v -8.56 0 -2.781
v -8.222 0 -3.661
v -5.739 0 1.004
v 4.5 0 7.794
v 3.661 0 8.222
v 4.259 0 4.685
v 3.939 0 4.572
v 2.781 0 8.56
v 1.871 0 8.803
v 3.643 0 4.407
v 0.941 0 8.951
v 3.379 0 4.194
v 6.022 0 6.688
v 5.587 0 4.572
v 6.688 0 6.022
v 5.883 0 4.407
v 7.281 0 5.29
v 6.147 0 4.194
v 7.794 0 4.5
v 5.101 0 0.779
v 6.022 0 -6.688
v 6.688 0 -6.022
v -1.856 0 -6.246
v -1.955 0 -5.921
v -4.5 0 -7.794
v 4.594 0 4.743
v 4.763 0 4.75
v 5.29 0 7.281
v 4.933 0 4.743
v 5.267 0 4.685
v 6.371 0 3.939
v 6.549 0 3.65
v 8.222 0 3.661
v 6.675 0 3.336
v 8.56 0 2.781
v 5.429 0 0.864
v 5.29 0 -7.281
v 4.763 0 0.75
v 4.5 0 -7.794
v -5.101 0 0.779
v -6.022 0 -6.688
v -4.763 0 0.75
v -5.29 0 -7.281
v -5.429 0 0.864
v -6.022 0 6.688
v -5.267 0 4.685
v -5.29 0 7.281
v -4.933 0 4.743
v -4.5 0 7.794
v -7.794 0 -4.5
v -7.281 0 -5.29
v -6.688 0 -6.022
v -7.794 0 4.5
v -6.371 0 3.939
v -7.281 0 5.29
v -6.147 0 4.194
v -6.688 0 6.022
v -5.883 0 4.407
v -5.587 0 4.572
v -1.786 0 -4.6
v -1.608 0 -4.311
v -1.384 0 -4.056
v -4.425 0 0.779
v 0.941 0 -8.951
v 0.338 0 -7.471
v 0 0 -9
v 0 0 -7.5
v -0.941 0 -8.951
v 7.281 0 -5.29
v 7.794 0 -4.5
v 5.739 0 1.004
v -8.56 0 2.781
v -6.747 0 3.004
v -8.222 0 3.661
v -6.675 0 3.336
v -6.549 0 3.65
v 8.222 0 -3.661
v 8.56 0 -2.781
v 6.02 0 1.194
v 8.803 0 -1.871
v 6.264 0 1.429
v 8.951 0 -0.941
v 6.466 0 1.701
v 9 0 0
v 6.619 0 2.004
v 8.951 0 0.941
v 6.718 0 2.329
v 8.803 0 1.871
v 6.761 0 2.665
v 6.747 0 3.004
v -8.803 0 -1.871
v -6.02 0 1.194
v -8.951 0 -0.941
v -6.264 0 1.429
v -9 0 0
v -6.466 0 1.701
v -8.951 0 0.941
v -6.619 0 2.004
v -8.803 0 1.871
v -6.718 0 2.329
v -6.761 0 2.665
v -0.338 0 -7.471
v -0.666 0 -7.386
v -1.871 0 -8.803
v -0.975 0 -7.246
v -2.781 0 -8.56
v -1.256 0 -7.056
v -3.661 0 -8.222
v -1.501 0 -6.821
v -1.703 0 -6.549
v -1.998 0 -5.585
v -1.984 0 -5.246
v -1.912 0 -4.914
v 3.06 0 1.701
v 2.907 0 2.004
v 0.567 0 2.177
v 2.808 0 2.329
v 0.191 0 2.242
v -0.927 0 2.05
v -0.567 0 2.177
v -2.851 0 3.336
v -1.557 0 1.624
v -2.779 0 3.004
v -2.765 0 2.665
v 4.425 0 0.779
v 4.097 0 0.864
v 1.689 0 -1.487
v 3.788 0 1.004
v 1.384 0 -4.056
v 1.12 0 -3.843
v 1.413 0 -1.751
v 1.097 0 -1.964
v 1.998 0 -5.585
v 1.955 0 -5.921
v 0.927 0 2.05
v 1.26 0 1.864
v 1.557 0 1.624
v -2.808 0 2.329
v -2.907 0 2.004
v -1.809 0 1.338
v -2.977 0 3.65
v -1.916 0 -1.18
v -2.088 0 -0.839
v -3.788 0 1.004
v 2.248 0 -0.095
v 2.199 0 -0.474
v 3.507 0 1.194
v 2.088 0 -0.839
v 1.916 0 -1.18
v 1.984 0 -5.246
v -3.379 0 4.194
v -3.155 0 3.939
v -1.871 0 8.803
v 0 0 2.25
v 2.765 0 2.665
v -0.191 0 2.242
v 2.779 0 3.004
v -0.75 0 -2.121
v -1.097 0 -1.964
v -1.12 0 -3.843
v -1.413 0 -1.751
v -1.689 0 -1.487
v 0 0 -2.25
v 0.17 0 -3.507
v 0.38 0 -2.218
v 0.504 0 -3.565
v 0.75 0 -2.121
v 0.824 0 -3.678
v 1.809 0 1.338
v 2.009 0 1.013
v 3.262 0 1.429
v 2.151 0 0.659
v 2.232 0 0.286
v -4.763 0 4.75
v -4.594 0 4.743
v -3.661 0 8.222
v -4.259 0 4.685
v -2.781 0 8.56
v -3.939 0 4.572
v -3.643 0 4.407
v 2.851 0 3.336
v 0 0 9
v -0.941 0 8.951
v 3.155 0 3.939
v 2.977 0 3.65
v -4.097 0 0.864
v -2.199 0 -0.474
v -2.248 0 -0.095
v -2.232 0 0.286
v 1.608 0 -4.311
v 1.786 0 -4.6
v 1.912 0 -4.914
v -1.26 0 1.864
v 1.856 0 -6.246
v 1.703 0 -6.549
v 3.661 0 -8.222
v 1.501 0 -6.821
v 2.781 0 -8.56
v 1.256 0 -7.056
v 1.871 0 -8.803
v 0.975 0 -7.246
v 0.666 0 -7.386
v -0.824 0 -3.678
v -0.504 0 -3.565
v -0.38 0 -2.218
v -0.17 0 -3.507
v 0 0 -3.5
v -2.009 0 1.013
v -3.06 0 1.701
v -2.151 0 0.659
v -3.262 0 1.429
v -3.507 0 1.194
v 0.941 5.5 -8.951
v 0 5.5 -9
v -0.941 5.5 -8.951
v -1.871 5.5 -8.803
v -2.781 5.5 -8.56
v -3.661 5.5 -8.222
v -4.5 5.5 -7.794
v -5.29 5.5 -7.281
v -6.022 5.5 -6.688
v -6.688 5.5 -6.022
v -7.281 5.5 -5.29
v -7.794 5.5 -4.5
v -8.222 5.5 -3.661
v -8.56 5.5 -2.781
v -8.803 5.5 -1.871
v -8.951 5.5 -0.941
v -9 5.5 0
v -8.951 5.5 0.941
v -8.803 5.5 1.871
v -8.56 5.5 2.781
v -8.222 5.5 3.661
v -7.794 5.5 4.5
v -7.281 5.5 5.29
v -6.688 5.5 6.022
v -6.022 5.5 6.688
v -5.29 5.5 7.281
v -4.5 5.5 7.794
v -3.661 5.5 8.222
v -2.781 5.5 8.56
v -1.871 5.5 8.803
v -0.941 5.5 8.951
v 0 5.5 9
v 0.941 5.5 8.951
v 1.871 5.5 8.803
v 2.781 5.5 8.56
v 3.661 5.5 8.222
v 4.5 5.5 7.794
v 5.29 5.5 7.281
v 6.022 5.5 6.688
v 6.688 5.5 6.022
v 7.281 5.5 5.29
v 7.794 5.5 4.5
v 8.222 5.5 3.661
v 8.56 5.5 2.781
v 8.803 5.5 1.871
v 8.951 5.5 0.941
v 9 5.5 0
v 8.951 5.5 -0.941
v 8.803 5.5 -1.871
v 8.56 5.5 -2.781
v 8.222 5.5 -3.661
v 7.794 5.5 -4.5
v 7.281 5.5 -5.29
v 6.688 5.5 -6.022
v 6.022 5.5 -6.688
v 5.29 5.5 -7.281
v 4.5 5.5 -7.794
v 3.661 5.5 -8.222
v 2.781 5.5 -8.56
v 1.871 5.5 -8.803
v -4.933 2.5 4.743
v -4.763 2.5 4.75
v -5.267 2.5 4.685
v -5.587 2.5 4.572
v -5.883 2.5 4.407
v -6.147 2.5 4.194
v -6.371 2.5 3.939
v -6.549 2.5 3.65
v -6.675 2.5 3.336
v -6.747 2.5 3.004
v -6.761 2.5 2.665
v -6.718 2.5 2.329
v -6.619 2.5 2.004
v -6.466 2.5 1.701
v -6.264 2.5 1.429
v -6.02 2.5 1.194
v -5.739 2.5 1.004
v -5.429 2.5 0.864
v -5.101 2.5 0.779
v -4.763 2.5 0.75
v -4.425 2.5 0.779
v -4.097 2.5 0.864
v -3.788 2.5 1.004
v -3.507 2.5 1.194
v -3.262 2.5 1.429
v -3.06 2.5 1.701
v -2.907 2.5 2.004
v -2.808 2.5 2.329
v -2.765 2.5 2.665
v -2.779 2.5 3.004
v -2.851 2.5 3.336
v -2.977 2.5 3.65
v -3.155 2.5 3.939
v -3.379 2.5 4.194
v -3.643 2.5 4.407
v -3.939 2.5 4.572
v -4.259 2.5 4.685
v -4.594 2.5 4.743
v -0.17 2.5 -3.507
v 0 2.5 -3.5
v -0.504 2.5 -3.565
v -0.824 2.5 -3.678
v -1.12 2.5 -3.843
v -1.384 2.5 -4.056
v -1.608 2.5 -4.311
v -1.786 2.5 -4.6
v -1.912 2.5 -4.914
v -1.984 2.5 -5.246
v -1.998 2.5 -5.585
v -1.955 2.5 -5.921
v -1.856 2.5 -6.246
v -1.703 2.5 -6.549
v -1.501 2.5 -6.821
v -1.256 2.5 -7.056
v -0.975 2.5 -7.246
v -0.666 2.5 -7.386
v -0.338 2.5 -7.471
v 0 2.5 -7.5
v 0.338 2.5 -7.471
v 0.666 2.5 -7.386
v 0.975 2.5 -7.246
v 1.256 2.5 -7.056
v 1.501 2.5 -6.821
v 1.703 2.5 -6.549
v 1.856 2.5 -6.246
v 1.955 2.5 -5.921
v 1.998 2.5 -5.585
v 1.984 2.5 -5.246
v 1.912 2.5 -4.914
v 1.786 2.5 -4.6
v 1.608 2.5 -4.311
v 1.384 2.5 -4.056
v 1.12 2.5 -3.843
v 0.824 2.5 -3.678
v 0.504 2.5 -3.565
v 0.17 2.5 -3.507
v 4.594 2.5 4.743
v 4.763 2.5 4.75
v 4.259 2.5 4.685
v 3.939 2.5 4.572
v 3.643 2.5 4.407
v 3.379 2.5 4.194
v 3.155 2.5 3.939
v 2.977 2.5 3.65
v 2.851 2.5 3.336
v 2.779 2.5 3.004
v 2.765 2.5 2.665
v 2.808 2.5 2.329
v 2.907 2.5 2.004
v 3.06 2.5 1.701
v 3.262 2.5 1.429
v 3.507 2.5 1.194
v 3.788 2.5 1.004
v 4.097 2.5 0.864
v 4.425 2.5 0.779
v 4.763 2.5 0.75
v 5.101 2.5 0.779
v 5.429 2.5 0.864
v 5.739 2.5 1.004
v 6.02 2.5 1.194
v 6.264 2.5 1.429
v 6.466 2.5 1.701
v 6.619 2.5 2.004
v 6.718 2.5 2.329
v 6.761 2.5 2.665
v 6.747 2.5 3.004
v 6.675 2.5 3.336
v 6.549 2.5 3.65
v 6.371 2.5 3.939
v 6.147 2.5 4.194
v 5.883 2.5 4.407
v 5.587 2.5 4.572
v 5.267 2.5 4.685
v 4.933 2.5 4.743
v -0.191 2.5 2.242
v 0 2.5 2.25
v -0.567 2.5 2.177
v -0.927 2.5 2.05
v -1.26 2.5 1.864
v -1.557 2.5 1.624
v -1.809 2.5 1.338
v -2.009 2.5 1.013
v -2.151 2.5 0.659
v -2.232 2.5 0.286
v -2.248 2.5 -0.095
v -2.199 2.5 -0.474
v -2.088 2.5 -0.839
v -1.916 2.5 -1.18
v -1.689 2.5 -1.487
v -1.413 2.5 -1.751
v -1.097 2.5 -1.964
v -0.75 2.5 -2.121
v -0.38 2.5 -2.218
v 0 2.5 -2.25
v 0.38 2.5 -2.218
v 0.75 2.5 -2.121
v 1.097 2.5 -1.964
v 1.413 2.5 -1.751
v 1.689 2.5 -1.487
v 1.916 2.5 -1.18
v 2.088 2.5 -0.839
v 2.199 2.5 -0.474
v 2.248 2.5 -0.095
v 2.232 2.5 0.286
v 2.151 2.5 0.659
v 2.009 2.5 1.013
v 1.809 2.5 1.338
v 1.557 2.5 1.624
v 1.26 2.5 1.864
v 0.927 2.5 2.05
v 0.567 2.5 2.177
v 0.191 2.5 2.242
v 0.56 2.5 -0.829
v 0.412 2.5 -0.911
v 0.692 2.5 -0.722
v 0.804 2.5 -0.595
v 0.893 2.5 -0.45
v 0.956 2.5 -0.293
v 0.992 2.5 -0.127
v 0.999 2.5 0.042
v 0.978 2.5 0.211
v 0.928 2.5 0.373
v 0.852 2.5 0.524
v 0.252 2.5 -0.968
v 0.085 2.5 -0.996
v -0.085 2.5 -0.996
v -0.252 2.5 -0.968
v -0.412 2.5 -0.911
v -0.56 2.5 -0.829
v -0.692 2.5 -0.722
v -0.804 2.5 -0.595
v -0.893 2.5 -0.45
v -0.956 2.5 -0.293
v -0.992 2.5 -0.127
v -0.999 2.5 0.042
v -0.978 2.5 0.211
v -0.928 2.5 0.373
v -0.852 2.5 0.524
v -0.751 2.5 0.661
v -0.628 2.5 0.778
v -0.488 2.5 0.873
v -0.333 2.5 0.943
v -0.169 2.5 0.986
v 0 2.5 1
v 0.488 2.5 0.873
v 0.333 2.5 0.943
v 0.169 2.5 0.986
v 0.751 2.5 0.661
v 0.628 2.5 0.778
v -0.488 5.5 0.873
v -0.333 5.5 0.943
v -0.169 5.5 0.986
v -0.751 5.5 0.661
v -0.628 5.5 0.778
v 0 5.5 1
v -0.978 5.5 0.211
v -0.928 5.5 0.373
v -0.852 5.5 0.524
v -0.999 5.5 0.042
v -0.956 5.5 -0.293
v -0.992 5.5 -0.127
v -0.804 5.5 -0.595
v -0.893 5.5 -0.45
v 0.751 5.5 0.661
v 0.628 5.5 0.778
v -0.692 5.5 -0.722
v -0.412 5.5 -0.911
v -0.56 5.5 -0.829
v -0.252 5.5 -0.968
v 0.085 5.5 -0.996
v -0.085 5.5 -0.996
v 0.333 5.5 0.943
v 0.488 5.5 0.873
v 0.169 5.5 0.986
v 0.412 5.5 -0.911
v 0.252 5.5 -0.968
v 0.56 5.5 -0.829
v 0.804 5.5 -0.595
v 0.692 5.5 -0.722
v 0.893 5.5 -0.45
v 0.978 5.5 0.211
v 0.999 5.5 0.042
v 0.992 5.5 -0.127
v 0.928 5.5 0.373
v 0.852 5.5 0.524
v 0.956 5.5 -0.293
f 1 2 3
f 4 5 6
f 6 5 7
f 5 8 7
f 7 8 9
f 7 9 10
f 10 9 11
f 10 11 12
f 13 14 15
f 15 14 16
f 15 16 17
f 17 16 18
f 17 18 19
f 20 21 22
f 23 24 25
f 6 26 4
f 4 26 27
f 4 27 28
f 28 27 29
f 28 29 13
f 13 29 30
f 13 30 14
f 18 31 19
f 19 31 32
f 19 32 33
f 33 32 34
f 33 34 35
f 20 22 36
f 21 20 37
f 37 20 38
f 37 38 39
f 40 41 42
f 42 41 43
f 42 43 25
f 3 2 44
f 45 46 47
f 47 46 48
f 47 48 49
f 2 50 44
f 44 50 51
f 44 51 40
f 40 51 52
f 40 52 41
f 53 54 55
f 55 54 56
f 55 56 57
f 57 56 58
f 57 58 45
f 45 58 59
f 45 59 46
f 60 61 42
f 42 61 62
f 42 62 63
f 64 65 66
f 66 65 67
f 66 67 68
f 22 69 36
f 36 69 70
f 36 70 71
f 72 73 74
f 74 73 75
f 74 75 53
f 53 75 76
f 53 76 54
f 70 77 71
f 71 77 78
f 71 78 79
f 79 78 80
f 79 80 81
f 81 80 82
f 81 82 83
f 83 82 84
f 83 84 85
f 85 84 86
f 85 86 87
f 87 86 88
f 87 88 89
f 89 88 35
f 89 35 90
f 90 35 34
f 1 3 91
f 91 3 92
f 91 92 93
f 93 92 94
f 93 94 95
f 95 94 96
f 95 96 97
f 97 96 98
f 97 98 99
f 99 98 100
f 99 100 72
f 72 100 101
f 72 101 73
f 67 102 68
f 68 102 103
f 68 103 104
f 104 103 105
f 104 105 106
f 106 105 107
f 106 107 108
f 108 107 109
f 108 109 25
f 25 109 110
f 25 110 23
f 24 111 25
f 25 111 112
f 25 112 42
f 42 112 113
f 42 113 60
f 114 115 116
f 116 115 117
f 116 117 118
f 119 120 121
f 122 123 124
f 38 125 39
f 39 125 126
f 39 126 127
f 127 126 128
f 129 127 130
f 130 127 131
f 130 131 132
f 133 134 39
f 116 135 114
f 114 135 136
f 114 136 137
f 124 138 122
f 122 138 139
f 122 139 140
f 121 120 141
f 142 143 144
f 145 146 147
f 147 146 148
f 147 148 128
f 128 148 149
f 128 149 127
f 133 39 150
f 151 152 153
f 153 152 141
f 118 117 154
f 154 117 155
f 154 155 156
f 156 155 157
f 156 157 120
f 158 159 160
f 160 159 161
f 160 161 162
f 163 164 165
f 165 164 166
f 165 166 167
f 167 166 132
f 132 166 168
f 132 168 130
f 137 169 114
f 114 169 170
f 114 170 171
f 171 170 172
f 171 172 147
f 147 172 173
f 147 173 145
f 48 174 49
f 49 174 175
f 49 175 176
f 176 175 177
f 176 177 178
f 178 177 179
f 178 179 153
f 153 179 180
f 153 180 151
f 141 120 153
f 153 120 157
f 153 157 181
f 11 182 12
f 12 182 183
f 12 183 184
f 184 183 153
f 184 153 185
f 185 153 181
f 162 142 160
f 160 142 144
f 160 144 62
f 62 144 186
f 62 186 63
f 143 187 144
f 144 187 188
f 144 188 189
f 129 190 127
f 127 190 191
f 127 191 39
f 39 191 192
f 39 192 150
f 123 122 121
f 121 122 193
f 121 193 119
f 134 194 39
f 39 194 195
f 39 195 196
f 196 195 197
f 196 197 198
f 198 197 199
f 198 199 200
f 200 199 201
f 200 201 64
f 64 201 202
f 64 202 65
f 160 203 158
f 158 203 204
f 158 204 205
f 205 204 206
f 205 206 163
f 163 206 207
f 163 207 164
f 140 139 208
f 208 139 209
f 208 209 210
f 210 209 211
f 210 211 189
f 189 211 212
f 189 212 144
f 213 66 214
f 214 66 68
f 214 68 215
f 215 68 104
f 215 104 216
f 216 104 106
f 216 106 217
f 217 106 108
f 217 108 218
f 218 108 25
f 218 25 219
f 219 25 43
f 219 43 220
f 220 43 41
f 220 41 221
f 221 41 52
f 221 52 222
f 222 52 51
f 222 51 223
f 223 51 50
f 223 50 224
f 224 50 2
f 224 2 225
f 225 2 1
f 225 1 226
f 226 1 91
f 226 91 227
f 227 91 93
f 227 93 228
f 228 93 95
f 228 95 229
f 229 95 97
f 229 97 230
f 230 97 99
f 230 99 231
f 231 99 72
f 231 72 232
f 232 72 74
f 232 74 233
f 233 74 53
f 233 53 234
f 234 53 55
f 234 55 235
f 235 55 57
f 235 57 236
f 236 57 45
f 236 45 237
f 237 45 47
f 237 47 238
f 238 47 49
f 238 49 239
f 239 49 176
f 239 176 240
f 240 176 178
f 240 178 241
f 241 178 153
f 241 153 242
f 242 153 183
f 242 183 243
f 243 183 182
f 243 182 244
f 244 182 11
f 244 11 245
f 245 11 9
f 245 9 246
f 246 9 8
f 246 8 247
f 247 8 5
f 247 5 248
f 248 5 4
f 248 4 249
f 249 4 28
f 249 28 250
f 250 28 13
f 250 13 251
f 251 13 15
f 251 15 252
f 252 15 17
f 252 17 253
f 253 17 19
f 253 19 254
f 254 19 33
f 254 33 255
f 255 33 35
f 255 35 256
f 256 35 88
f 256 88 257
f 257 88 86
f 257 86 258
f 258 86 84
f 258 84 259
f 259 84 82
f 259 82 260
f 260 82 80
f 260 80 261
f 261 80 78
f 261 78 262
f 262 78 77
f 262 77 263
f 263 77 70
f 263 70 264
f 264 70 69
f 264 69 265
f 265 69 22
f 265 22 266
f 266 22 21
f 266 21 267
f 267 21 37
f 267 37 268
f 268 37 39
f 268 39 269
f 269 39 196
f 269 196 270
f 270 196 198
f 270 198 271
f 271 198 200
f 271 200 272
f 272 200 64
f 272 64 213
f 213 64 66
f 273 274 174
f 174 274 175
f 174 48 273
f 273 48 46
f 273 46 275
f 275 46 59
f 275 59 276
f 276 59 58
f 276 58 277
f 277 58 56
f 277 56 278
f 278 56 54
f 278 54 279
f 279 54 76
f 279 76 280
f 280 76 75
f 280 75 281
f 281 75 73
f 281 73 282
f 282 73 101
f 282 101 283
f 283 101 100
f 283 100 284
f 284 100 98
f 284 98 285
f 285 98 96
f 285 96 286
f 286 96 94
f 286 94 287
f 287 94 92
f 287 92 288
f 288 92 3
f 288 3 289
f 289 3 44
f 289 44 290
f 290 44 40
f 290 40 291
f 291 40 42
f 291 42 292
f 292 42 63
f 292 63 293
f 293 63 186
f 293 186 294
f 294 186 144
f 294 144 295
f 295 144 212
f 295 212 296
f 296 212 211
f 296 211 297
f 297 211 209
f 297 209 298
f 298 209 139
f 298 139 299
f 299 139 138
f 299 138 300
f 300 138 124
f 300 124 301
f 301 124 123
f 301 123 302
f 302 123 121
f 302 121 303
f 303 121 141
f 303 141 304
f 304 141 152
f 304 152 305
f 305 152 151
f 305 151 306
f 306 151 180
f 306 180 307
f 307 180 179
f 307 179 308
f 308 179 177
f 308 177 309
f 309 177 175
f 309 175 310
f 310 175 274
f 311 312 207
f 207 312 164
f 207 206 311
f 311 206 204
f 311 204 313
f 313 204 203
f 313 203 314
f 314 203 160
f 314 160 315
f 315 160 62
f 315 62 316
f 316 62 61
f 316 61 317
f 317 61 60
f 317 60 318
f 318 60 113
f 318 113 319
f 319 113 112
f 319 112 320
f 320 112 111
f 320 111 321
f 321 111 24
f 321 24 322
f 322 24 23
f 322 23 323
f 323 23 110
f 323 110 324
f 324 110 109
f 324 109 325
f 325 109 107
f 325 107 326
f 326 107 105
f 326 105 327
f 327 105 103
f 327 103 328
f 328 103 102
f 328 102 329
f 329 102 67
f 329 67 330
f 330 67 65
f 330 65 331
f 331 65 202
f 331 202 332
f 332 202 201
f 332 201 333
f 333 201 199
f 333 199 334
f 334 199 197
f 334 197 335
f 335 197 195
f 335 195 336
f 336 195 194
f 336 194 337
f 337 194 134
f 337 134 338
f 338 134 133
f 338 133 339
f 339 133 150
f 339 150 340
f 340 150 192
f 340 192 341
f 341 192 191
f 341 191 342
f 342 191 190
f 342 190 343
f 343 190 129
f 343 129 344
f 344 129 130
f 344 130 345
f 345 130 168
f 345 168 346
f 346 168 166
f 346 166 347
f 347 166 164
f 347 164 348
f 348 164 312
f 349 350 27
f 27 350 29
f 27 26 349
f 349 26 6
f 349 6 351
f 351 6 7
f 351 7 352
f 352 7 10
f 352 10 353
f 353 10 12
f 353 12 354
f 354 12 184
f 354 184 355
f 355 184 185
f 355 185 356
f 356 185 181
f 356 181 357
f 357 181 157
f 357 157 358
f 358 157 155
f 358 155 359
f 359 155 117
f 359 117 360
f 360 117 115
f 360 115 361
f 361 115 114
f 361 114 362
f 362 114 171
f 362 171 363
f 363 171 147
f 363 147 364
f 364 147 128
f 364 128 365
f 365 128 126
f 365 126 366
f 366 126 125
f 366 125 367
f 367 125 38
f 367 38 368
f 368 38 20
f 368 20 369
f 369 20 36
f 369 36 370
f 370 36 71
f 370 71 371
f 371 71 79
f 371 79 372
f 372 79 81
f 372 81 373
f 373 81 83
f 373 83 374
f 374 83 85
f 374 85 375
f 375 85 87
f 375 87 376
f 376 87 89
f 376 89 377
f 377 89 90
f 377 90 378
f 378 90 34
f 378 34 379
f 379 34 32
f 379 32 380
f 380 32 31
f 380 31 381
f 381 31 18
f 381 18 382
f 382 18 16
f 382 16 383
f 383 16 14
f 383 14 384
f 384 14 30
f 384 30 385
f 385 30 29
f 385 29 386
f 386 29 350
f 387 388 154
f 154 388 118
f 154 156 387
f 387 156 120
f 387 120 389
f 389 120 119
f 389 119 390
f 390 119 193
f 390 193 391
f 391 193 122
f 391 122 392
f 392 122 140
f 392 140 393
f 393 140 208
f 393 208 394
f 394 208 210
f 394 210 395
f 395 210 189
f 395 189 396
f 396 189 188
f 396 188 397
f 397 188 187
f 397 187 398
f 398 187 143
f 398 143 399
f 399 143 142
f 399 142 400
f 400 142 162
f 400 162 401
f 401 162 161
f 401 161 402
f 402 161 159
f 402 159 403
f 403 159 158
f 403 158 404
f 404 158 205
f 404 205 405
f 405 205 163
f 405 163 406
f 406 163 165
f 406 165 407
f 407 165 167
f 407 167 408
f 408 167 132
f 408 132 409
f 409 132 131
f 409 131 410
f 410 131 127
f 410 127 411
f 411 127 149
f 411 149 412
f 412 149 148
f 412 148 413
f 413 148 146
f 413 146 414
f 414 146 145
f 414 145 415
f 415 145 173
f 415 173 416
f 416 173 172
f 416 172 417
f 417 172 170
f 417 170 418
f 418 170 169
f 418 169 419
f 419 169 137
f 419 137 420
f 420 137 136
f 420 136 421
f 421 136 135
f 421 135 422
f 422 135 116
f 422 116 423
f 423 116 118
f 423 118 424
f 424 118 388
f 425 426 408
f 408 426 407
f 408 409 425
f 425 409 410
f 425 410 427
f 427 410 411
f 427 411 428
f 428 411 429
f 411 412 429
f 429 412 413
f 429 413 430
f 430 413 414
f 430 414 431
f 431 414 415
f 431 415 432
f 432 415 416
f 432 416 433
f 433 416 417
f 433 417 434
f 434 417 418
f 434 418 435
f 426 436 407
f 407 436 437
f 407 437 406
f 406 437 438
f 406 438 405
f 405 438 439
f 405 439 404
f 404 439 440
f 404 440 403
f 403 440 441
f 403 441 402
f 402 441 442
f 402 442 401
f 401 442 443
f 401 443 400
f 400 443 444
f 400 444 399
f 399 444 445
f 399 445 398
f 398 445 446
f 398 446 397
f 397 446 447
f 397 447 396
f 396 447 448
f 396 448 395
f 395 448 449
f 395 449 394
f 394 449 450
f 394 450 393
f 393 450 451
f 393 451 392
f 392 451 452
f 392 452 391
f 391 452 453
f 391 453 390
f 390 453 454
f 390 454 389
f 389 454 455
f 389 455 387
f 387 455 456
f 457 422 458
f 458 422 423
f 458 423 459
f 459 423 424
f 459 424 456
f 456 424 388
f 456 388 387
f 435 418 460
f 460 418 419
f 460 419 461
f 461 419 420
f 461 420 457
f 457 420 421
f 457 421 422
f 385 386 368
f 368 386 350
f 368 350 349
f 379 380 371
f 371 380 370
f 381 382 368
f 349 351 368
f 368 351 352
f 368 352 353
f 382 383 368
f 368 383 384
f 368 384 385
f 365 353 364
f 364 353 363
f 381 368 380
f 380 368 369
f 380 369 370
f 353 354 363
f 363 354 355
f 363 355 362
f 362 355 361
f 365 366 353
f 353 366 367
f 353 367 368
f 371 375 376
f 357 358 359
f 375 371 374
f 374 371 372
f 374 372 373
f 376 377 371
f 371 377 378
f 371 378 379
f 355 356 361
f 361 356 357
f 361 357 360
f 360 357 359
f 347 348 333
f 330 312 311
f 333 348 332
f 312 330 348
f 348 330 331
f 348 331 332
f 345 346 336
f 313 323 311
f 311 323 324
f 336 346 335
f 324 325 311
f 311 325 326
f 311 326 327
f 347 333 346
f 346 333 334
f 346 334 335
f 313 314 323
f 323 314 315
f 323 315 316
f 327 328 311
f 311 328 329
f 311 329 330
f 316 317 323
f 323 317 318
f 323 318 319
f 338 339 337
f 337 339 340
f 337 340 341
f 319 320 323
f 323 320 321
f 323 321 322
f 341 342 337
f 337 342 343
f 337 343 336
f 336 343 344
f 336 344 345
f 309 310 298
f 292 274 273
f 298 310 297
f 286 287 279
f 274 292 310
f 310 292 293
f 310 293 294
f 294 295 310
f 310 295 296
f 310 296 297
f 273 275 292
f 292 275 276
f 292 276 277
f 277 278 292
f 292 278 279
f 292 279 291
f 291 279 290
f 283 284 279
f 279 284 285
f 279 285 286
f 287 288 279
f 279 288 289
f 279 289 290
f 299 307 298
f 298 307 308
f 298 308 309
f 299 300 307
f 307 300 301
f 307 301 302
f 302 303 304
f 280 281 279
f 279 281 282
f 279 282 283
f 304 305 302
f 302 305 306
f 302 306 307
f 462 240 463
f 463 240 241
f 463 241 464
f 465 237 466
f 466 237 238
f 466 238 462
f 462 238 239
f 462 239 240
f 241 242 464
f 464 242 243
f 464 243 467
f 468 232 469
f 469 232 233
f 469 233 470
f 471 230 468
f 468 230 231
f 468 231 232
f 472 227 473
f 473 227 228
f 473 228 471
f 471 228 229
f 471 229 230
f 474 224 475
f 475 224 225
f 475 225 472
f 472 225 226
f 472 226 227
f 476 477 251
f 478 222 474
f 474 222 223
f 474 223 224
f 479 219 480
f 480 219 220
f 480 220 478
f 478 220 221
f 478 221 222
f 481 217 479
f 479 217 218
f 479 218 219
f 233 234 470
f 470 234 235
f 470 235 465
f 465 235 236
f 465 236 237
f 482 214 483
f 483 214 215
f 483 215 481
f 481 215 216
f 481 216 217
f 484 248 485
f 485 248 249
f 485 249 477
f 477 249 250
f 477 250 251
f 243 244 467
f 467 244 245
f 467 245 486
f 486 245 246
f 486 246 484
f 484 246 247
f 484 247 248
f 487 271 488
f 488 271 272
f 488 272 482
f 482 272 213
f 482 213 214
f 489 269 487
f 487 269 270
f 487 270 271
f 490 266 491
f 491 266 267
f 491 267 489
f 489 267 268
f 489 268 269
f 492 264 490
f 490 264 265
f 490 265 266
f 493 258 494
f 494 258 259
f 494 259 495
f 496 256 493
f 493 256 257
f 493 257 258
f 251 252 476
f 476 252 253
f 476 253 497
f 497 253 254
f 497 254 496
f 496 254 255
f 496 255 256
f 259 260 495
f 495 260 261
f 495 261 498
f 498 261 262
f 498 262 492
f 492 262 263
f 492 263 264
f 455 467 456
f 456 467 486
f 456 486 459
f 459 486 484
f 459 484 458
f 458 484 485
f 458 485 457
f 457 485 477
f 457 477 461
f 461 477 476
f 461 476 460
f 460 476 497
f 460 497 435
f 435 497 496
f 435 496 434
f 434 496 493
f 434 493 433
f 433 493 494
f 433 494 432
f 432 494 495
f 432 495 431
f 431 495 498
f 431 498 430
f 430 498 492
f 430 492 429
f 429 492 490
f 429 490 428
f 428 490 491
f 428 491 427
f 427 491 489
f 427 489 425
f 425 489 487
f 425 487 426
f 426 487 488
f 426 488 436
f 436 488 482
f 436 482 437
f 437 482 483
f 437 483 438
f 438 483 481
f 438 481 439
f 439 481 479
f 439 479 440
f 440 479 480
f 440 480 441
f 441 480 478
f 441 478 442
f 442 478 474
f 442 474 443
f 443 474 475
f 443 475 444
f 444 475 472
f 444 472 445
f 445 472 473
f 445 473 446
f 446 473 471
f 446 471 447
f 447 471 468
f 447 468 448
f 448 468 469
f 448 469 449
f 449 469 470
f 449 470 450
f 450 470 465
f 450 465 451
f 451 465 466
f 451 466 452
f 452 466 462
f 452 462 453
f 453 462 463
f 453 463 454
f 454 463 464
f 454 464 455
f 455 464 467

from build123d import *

# Parameters (mm, degrees)
SKETCH1_R           = 9
SKETCH1_R_2         = 2
SKETCH1_R_3         = 2.25
BOSS_EXTRUDE1_DEPTH = 2.5
SKETCH2_R           = 9
BOSS_EXTRUDE2_DEPTH = 3
SKETCH3_R           = 1
CUT_EXTRUDE1_DEPTH  = 6.5


with BuildPart() as part:
    # Sketch1 → Boss-Extrude1 (new body)
    with BuildSketch(Plane(origin=(0, 0, 0), x_dir=(1, 0, 0), z_dir=(0, 1, 0))):
        Circle(SKETCH1_R)
        with Locations((-4.763139721, -2.75)):
            Circle(SKETCH1_R_2, mode=Mode.SUBTRACT)
        with Locations((0, 5.5)):
            Circle(SKETCH1_R_2, mode=Mode.SUBTRACT)
        with Locations((4.763139721, -2.75)):
            Circle(SKETCH1_R_2, mode=Mode.SUBTRACT)
        Circle(SKETCH1_R_3, mode=Mode.SUBTRACT)
    extrude(amount=BOSS_EXTRUDE1_DEPTH)

    # Sketch2 → Boss-Extrude2 (add)
    with BuildSketch(Plane(origin=(0, 2.5, 0), x_dir=(1, 0, 0), z_dir=(0, 1, 0))):
        Circle(SKETCH2_R)
    extrude(amount=BOSS_EXTRUDE2_DEPTH)

    # Sketch3 → Cut-Extrude1 (cut, through all)
    with BuildSketch(Plane(origin=(0, 5.5, 0), x_dir=(1, 0, 0), z_dir=(0, 1, 0))):
        Circle(SKETCH3_R)
    extrude(amount=-CUT_EXTRUDE1_DEPTH, mode=Mode.SUBTRACT)


solid = part.part
